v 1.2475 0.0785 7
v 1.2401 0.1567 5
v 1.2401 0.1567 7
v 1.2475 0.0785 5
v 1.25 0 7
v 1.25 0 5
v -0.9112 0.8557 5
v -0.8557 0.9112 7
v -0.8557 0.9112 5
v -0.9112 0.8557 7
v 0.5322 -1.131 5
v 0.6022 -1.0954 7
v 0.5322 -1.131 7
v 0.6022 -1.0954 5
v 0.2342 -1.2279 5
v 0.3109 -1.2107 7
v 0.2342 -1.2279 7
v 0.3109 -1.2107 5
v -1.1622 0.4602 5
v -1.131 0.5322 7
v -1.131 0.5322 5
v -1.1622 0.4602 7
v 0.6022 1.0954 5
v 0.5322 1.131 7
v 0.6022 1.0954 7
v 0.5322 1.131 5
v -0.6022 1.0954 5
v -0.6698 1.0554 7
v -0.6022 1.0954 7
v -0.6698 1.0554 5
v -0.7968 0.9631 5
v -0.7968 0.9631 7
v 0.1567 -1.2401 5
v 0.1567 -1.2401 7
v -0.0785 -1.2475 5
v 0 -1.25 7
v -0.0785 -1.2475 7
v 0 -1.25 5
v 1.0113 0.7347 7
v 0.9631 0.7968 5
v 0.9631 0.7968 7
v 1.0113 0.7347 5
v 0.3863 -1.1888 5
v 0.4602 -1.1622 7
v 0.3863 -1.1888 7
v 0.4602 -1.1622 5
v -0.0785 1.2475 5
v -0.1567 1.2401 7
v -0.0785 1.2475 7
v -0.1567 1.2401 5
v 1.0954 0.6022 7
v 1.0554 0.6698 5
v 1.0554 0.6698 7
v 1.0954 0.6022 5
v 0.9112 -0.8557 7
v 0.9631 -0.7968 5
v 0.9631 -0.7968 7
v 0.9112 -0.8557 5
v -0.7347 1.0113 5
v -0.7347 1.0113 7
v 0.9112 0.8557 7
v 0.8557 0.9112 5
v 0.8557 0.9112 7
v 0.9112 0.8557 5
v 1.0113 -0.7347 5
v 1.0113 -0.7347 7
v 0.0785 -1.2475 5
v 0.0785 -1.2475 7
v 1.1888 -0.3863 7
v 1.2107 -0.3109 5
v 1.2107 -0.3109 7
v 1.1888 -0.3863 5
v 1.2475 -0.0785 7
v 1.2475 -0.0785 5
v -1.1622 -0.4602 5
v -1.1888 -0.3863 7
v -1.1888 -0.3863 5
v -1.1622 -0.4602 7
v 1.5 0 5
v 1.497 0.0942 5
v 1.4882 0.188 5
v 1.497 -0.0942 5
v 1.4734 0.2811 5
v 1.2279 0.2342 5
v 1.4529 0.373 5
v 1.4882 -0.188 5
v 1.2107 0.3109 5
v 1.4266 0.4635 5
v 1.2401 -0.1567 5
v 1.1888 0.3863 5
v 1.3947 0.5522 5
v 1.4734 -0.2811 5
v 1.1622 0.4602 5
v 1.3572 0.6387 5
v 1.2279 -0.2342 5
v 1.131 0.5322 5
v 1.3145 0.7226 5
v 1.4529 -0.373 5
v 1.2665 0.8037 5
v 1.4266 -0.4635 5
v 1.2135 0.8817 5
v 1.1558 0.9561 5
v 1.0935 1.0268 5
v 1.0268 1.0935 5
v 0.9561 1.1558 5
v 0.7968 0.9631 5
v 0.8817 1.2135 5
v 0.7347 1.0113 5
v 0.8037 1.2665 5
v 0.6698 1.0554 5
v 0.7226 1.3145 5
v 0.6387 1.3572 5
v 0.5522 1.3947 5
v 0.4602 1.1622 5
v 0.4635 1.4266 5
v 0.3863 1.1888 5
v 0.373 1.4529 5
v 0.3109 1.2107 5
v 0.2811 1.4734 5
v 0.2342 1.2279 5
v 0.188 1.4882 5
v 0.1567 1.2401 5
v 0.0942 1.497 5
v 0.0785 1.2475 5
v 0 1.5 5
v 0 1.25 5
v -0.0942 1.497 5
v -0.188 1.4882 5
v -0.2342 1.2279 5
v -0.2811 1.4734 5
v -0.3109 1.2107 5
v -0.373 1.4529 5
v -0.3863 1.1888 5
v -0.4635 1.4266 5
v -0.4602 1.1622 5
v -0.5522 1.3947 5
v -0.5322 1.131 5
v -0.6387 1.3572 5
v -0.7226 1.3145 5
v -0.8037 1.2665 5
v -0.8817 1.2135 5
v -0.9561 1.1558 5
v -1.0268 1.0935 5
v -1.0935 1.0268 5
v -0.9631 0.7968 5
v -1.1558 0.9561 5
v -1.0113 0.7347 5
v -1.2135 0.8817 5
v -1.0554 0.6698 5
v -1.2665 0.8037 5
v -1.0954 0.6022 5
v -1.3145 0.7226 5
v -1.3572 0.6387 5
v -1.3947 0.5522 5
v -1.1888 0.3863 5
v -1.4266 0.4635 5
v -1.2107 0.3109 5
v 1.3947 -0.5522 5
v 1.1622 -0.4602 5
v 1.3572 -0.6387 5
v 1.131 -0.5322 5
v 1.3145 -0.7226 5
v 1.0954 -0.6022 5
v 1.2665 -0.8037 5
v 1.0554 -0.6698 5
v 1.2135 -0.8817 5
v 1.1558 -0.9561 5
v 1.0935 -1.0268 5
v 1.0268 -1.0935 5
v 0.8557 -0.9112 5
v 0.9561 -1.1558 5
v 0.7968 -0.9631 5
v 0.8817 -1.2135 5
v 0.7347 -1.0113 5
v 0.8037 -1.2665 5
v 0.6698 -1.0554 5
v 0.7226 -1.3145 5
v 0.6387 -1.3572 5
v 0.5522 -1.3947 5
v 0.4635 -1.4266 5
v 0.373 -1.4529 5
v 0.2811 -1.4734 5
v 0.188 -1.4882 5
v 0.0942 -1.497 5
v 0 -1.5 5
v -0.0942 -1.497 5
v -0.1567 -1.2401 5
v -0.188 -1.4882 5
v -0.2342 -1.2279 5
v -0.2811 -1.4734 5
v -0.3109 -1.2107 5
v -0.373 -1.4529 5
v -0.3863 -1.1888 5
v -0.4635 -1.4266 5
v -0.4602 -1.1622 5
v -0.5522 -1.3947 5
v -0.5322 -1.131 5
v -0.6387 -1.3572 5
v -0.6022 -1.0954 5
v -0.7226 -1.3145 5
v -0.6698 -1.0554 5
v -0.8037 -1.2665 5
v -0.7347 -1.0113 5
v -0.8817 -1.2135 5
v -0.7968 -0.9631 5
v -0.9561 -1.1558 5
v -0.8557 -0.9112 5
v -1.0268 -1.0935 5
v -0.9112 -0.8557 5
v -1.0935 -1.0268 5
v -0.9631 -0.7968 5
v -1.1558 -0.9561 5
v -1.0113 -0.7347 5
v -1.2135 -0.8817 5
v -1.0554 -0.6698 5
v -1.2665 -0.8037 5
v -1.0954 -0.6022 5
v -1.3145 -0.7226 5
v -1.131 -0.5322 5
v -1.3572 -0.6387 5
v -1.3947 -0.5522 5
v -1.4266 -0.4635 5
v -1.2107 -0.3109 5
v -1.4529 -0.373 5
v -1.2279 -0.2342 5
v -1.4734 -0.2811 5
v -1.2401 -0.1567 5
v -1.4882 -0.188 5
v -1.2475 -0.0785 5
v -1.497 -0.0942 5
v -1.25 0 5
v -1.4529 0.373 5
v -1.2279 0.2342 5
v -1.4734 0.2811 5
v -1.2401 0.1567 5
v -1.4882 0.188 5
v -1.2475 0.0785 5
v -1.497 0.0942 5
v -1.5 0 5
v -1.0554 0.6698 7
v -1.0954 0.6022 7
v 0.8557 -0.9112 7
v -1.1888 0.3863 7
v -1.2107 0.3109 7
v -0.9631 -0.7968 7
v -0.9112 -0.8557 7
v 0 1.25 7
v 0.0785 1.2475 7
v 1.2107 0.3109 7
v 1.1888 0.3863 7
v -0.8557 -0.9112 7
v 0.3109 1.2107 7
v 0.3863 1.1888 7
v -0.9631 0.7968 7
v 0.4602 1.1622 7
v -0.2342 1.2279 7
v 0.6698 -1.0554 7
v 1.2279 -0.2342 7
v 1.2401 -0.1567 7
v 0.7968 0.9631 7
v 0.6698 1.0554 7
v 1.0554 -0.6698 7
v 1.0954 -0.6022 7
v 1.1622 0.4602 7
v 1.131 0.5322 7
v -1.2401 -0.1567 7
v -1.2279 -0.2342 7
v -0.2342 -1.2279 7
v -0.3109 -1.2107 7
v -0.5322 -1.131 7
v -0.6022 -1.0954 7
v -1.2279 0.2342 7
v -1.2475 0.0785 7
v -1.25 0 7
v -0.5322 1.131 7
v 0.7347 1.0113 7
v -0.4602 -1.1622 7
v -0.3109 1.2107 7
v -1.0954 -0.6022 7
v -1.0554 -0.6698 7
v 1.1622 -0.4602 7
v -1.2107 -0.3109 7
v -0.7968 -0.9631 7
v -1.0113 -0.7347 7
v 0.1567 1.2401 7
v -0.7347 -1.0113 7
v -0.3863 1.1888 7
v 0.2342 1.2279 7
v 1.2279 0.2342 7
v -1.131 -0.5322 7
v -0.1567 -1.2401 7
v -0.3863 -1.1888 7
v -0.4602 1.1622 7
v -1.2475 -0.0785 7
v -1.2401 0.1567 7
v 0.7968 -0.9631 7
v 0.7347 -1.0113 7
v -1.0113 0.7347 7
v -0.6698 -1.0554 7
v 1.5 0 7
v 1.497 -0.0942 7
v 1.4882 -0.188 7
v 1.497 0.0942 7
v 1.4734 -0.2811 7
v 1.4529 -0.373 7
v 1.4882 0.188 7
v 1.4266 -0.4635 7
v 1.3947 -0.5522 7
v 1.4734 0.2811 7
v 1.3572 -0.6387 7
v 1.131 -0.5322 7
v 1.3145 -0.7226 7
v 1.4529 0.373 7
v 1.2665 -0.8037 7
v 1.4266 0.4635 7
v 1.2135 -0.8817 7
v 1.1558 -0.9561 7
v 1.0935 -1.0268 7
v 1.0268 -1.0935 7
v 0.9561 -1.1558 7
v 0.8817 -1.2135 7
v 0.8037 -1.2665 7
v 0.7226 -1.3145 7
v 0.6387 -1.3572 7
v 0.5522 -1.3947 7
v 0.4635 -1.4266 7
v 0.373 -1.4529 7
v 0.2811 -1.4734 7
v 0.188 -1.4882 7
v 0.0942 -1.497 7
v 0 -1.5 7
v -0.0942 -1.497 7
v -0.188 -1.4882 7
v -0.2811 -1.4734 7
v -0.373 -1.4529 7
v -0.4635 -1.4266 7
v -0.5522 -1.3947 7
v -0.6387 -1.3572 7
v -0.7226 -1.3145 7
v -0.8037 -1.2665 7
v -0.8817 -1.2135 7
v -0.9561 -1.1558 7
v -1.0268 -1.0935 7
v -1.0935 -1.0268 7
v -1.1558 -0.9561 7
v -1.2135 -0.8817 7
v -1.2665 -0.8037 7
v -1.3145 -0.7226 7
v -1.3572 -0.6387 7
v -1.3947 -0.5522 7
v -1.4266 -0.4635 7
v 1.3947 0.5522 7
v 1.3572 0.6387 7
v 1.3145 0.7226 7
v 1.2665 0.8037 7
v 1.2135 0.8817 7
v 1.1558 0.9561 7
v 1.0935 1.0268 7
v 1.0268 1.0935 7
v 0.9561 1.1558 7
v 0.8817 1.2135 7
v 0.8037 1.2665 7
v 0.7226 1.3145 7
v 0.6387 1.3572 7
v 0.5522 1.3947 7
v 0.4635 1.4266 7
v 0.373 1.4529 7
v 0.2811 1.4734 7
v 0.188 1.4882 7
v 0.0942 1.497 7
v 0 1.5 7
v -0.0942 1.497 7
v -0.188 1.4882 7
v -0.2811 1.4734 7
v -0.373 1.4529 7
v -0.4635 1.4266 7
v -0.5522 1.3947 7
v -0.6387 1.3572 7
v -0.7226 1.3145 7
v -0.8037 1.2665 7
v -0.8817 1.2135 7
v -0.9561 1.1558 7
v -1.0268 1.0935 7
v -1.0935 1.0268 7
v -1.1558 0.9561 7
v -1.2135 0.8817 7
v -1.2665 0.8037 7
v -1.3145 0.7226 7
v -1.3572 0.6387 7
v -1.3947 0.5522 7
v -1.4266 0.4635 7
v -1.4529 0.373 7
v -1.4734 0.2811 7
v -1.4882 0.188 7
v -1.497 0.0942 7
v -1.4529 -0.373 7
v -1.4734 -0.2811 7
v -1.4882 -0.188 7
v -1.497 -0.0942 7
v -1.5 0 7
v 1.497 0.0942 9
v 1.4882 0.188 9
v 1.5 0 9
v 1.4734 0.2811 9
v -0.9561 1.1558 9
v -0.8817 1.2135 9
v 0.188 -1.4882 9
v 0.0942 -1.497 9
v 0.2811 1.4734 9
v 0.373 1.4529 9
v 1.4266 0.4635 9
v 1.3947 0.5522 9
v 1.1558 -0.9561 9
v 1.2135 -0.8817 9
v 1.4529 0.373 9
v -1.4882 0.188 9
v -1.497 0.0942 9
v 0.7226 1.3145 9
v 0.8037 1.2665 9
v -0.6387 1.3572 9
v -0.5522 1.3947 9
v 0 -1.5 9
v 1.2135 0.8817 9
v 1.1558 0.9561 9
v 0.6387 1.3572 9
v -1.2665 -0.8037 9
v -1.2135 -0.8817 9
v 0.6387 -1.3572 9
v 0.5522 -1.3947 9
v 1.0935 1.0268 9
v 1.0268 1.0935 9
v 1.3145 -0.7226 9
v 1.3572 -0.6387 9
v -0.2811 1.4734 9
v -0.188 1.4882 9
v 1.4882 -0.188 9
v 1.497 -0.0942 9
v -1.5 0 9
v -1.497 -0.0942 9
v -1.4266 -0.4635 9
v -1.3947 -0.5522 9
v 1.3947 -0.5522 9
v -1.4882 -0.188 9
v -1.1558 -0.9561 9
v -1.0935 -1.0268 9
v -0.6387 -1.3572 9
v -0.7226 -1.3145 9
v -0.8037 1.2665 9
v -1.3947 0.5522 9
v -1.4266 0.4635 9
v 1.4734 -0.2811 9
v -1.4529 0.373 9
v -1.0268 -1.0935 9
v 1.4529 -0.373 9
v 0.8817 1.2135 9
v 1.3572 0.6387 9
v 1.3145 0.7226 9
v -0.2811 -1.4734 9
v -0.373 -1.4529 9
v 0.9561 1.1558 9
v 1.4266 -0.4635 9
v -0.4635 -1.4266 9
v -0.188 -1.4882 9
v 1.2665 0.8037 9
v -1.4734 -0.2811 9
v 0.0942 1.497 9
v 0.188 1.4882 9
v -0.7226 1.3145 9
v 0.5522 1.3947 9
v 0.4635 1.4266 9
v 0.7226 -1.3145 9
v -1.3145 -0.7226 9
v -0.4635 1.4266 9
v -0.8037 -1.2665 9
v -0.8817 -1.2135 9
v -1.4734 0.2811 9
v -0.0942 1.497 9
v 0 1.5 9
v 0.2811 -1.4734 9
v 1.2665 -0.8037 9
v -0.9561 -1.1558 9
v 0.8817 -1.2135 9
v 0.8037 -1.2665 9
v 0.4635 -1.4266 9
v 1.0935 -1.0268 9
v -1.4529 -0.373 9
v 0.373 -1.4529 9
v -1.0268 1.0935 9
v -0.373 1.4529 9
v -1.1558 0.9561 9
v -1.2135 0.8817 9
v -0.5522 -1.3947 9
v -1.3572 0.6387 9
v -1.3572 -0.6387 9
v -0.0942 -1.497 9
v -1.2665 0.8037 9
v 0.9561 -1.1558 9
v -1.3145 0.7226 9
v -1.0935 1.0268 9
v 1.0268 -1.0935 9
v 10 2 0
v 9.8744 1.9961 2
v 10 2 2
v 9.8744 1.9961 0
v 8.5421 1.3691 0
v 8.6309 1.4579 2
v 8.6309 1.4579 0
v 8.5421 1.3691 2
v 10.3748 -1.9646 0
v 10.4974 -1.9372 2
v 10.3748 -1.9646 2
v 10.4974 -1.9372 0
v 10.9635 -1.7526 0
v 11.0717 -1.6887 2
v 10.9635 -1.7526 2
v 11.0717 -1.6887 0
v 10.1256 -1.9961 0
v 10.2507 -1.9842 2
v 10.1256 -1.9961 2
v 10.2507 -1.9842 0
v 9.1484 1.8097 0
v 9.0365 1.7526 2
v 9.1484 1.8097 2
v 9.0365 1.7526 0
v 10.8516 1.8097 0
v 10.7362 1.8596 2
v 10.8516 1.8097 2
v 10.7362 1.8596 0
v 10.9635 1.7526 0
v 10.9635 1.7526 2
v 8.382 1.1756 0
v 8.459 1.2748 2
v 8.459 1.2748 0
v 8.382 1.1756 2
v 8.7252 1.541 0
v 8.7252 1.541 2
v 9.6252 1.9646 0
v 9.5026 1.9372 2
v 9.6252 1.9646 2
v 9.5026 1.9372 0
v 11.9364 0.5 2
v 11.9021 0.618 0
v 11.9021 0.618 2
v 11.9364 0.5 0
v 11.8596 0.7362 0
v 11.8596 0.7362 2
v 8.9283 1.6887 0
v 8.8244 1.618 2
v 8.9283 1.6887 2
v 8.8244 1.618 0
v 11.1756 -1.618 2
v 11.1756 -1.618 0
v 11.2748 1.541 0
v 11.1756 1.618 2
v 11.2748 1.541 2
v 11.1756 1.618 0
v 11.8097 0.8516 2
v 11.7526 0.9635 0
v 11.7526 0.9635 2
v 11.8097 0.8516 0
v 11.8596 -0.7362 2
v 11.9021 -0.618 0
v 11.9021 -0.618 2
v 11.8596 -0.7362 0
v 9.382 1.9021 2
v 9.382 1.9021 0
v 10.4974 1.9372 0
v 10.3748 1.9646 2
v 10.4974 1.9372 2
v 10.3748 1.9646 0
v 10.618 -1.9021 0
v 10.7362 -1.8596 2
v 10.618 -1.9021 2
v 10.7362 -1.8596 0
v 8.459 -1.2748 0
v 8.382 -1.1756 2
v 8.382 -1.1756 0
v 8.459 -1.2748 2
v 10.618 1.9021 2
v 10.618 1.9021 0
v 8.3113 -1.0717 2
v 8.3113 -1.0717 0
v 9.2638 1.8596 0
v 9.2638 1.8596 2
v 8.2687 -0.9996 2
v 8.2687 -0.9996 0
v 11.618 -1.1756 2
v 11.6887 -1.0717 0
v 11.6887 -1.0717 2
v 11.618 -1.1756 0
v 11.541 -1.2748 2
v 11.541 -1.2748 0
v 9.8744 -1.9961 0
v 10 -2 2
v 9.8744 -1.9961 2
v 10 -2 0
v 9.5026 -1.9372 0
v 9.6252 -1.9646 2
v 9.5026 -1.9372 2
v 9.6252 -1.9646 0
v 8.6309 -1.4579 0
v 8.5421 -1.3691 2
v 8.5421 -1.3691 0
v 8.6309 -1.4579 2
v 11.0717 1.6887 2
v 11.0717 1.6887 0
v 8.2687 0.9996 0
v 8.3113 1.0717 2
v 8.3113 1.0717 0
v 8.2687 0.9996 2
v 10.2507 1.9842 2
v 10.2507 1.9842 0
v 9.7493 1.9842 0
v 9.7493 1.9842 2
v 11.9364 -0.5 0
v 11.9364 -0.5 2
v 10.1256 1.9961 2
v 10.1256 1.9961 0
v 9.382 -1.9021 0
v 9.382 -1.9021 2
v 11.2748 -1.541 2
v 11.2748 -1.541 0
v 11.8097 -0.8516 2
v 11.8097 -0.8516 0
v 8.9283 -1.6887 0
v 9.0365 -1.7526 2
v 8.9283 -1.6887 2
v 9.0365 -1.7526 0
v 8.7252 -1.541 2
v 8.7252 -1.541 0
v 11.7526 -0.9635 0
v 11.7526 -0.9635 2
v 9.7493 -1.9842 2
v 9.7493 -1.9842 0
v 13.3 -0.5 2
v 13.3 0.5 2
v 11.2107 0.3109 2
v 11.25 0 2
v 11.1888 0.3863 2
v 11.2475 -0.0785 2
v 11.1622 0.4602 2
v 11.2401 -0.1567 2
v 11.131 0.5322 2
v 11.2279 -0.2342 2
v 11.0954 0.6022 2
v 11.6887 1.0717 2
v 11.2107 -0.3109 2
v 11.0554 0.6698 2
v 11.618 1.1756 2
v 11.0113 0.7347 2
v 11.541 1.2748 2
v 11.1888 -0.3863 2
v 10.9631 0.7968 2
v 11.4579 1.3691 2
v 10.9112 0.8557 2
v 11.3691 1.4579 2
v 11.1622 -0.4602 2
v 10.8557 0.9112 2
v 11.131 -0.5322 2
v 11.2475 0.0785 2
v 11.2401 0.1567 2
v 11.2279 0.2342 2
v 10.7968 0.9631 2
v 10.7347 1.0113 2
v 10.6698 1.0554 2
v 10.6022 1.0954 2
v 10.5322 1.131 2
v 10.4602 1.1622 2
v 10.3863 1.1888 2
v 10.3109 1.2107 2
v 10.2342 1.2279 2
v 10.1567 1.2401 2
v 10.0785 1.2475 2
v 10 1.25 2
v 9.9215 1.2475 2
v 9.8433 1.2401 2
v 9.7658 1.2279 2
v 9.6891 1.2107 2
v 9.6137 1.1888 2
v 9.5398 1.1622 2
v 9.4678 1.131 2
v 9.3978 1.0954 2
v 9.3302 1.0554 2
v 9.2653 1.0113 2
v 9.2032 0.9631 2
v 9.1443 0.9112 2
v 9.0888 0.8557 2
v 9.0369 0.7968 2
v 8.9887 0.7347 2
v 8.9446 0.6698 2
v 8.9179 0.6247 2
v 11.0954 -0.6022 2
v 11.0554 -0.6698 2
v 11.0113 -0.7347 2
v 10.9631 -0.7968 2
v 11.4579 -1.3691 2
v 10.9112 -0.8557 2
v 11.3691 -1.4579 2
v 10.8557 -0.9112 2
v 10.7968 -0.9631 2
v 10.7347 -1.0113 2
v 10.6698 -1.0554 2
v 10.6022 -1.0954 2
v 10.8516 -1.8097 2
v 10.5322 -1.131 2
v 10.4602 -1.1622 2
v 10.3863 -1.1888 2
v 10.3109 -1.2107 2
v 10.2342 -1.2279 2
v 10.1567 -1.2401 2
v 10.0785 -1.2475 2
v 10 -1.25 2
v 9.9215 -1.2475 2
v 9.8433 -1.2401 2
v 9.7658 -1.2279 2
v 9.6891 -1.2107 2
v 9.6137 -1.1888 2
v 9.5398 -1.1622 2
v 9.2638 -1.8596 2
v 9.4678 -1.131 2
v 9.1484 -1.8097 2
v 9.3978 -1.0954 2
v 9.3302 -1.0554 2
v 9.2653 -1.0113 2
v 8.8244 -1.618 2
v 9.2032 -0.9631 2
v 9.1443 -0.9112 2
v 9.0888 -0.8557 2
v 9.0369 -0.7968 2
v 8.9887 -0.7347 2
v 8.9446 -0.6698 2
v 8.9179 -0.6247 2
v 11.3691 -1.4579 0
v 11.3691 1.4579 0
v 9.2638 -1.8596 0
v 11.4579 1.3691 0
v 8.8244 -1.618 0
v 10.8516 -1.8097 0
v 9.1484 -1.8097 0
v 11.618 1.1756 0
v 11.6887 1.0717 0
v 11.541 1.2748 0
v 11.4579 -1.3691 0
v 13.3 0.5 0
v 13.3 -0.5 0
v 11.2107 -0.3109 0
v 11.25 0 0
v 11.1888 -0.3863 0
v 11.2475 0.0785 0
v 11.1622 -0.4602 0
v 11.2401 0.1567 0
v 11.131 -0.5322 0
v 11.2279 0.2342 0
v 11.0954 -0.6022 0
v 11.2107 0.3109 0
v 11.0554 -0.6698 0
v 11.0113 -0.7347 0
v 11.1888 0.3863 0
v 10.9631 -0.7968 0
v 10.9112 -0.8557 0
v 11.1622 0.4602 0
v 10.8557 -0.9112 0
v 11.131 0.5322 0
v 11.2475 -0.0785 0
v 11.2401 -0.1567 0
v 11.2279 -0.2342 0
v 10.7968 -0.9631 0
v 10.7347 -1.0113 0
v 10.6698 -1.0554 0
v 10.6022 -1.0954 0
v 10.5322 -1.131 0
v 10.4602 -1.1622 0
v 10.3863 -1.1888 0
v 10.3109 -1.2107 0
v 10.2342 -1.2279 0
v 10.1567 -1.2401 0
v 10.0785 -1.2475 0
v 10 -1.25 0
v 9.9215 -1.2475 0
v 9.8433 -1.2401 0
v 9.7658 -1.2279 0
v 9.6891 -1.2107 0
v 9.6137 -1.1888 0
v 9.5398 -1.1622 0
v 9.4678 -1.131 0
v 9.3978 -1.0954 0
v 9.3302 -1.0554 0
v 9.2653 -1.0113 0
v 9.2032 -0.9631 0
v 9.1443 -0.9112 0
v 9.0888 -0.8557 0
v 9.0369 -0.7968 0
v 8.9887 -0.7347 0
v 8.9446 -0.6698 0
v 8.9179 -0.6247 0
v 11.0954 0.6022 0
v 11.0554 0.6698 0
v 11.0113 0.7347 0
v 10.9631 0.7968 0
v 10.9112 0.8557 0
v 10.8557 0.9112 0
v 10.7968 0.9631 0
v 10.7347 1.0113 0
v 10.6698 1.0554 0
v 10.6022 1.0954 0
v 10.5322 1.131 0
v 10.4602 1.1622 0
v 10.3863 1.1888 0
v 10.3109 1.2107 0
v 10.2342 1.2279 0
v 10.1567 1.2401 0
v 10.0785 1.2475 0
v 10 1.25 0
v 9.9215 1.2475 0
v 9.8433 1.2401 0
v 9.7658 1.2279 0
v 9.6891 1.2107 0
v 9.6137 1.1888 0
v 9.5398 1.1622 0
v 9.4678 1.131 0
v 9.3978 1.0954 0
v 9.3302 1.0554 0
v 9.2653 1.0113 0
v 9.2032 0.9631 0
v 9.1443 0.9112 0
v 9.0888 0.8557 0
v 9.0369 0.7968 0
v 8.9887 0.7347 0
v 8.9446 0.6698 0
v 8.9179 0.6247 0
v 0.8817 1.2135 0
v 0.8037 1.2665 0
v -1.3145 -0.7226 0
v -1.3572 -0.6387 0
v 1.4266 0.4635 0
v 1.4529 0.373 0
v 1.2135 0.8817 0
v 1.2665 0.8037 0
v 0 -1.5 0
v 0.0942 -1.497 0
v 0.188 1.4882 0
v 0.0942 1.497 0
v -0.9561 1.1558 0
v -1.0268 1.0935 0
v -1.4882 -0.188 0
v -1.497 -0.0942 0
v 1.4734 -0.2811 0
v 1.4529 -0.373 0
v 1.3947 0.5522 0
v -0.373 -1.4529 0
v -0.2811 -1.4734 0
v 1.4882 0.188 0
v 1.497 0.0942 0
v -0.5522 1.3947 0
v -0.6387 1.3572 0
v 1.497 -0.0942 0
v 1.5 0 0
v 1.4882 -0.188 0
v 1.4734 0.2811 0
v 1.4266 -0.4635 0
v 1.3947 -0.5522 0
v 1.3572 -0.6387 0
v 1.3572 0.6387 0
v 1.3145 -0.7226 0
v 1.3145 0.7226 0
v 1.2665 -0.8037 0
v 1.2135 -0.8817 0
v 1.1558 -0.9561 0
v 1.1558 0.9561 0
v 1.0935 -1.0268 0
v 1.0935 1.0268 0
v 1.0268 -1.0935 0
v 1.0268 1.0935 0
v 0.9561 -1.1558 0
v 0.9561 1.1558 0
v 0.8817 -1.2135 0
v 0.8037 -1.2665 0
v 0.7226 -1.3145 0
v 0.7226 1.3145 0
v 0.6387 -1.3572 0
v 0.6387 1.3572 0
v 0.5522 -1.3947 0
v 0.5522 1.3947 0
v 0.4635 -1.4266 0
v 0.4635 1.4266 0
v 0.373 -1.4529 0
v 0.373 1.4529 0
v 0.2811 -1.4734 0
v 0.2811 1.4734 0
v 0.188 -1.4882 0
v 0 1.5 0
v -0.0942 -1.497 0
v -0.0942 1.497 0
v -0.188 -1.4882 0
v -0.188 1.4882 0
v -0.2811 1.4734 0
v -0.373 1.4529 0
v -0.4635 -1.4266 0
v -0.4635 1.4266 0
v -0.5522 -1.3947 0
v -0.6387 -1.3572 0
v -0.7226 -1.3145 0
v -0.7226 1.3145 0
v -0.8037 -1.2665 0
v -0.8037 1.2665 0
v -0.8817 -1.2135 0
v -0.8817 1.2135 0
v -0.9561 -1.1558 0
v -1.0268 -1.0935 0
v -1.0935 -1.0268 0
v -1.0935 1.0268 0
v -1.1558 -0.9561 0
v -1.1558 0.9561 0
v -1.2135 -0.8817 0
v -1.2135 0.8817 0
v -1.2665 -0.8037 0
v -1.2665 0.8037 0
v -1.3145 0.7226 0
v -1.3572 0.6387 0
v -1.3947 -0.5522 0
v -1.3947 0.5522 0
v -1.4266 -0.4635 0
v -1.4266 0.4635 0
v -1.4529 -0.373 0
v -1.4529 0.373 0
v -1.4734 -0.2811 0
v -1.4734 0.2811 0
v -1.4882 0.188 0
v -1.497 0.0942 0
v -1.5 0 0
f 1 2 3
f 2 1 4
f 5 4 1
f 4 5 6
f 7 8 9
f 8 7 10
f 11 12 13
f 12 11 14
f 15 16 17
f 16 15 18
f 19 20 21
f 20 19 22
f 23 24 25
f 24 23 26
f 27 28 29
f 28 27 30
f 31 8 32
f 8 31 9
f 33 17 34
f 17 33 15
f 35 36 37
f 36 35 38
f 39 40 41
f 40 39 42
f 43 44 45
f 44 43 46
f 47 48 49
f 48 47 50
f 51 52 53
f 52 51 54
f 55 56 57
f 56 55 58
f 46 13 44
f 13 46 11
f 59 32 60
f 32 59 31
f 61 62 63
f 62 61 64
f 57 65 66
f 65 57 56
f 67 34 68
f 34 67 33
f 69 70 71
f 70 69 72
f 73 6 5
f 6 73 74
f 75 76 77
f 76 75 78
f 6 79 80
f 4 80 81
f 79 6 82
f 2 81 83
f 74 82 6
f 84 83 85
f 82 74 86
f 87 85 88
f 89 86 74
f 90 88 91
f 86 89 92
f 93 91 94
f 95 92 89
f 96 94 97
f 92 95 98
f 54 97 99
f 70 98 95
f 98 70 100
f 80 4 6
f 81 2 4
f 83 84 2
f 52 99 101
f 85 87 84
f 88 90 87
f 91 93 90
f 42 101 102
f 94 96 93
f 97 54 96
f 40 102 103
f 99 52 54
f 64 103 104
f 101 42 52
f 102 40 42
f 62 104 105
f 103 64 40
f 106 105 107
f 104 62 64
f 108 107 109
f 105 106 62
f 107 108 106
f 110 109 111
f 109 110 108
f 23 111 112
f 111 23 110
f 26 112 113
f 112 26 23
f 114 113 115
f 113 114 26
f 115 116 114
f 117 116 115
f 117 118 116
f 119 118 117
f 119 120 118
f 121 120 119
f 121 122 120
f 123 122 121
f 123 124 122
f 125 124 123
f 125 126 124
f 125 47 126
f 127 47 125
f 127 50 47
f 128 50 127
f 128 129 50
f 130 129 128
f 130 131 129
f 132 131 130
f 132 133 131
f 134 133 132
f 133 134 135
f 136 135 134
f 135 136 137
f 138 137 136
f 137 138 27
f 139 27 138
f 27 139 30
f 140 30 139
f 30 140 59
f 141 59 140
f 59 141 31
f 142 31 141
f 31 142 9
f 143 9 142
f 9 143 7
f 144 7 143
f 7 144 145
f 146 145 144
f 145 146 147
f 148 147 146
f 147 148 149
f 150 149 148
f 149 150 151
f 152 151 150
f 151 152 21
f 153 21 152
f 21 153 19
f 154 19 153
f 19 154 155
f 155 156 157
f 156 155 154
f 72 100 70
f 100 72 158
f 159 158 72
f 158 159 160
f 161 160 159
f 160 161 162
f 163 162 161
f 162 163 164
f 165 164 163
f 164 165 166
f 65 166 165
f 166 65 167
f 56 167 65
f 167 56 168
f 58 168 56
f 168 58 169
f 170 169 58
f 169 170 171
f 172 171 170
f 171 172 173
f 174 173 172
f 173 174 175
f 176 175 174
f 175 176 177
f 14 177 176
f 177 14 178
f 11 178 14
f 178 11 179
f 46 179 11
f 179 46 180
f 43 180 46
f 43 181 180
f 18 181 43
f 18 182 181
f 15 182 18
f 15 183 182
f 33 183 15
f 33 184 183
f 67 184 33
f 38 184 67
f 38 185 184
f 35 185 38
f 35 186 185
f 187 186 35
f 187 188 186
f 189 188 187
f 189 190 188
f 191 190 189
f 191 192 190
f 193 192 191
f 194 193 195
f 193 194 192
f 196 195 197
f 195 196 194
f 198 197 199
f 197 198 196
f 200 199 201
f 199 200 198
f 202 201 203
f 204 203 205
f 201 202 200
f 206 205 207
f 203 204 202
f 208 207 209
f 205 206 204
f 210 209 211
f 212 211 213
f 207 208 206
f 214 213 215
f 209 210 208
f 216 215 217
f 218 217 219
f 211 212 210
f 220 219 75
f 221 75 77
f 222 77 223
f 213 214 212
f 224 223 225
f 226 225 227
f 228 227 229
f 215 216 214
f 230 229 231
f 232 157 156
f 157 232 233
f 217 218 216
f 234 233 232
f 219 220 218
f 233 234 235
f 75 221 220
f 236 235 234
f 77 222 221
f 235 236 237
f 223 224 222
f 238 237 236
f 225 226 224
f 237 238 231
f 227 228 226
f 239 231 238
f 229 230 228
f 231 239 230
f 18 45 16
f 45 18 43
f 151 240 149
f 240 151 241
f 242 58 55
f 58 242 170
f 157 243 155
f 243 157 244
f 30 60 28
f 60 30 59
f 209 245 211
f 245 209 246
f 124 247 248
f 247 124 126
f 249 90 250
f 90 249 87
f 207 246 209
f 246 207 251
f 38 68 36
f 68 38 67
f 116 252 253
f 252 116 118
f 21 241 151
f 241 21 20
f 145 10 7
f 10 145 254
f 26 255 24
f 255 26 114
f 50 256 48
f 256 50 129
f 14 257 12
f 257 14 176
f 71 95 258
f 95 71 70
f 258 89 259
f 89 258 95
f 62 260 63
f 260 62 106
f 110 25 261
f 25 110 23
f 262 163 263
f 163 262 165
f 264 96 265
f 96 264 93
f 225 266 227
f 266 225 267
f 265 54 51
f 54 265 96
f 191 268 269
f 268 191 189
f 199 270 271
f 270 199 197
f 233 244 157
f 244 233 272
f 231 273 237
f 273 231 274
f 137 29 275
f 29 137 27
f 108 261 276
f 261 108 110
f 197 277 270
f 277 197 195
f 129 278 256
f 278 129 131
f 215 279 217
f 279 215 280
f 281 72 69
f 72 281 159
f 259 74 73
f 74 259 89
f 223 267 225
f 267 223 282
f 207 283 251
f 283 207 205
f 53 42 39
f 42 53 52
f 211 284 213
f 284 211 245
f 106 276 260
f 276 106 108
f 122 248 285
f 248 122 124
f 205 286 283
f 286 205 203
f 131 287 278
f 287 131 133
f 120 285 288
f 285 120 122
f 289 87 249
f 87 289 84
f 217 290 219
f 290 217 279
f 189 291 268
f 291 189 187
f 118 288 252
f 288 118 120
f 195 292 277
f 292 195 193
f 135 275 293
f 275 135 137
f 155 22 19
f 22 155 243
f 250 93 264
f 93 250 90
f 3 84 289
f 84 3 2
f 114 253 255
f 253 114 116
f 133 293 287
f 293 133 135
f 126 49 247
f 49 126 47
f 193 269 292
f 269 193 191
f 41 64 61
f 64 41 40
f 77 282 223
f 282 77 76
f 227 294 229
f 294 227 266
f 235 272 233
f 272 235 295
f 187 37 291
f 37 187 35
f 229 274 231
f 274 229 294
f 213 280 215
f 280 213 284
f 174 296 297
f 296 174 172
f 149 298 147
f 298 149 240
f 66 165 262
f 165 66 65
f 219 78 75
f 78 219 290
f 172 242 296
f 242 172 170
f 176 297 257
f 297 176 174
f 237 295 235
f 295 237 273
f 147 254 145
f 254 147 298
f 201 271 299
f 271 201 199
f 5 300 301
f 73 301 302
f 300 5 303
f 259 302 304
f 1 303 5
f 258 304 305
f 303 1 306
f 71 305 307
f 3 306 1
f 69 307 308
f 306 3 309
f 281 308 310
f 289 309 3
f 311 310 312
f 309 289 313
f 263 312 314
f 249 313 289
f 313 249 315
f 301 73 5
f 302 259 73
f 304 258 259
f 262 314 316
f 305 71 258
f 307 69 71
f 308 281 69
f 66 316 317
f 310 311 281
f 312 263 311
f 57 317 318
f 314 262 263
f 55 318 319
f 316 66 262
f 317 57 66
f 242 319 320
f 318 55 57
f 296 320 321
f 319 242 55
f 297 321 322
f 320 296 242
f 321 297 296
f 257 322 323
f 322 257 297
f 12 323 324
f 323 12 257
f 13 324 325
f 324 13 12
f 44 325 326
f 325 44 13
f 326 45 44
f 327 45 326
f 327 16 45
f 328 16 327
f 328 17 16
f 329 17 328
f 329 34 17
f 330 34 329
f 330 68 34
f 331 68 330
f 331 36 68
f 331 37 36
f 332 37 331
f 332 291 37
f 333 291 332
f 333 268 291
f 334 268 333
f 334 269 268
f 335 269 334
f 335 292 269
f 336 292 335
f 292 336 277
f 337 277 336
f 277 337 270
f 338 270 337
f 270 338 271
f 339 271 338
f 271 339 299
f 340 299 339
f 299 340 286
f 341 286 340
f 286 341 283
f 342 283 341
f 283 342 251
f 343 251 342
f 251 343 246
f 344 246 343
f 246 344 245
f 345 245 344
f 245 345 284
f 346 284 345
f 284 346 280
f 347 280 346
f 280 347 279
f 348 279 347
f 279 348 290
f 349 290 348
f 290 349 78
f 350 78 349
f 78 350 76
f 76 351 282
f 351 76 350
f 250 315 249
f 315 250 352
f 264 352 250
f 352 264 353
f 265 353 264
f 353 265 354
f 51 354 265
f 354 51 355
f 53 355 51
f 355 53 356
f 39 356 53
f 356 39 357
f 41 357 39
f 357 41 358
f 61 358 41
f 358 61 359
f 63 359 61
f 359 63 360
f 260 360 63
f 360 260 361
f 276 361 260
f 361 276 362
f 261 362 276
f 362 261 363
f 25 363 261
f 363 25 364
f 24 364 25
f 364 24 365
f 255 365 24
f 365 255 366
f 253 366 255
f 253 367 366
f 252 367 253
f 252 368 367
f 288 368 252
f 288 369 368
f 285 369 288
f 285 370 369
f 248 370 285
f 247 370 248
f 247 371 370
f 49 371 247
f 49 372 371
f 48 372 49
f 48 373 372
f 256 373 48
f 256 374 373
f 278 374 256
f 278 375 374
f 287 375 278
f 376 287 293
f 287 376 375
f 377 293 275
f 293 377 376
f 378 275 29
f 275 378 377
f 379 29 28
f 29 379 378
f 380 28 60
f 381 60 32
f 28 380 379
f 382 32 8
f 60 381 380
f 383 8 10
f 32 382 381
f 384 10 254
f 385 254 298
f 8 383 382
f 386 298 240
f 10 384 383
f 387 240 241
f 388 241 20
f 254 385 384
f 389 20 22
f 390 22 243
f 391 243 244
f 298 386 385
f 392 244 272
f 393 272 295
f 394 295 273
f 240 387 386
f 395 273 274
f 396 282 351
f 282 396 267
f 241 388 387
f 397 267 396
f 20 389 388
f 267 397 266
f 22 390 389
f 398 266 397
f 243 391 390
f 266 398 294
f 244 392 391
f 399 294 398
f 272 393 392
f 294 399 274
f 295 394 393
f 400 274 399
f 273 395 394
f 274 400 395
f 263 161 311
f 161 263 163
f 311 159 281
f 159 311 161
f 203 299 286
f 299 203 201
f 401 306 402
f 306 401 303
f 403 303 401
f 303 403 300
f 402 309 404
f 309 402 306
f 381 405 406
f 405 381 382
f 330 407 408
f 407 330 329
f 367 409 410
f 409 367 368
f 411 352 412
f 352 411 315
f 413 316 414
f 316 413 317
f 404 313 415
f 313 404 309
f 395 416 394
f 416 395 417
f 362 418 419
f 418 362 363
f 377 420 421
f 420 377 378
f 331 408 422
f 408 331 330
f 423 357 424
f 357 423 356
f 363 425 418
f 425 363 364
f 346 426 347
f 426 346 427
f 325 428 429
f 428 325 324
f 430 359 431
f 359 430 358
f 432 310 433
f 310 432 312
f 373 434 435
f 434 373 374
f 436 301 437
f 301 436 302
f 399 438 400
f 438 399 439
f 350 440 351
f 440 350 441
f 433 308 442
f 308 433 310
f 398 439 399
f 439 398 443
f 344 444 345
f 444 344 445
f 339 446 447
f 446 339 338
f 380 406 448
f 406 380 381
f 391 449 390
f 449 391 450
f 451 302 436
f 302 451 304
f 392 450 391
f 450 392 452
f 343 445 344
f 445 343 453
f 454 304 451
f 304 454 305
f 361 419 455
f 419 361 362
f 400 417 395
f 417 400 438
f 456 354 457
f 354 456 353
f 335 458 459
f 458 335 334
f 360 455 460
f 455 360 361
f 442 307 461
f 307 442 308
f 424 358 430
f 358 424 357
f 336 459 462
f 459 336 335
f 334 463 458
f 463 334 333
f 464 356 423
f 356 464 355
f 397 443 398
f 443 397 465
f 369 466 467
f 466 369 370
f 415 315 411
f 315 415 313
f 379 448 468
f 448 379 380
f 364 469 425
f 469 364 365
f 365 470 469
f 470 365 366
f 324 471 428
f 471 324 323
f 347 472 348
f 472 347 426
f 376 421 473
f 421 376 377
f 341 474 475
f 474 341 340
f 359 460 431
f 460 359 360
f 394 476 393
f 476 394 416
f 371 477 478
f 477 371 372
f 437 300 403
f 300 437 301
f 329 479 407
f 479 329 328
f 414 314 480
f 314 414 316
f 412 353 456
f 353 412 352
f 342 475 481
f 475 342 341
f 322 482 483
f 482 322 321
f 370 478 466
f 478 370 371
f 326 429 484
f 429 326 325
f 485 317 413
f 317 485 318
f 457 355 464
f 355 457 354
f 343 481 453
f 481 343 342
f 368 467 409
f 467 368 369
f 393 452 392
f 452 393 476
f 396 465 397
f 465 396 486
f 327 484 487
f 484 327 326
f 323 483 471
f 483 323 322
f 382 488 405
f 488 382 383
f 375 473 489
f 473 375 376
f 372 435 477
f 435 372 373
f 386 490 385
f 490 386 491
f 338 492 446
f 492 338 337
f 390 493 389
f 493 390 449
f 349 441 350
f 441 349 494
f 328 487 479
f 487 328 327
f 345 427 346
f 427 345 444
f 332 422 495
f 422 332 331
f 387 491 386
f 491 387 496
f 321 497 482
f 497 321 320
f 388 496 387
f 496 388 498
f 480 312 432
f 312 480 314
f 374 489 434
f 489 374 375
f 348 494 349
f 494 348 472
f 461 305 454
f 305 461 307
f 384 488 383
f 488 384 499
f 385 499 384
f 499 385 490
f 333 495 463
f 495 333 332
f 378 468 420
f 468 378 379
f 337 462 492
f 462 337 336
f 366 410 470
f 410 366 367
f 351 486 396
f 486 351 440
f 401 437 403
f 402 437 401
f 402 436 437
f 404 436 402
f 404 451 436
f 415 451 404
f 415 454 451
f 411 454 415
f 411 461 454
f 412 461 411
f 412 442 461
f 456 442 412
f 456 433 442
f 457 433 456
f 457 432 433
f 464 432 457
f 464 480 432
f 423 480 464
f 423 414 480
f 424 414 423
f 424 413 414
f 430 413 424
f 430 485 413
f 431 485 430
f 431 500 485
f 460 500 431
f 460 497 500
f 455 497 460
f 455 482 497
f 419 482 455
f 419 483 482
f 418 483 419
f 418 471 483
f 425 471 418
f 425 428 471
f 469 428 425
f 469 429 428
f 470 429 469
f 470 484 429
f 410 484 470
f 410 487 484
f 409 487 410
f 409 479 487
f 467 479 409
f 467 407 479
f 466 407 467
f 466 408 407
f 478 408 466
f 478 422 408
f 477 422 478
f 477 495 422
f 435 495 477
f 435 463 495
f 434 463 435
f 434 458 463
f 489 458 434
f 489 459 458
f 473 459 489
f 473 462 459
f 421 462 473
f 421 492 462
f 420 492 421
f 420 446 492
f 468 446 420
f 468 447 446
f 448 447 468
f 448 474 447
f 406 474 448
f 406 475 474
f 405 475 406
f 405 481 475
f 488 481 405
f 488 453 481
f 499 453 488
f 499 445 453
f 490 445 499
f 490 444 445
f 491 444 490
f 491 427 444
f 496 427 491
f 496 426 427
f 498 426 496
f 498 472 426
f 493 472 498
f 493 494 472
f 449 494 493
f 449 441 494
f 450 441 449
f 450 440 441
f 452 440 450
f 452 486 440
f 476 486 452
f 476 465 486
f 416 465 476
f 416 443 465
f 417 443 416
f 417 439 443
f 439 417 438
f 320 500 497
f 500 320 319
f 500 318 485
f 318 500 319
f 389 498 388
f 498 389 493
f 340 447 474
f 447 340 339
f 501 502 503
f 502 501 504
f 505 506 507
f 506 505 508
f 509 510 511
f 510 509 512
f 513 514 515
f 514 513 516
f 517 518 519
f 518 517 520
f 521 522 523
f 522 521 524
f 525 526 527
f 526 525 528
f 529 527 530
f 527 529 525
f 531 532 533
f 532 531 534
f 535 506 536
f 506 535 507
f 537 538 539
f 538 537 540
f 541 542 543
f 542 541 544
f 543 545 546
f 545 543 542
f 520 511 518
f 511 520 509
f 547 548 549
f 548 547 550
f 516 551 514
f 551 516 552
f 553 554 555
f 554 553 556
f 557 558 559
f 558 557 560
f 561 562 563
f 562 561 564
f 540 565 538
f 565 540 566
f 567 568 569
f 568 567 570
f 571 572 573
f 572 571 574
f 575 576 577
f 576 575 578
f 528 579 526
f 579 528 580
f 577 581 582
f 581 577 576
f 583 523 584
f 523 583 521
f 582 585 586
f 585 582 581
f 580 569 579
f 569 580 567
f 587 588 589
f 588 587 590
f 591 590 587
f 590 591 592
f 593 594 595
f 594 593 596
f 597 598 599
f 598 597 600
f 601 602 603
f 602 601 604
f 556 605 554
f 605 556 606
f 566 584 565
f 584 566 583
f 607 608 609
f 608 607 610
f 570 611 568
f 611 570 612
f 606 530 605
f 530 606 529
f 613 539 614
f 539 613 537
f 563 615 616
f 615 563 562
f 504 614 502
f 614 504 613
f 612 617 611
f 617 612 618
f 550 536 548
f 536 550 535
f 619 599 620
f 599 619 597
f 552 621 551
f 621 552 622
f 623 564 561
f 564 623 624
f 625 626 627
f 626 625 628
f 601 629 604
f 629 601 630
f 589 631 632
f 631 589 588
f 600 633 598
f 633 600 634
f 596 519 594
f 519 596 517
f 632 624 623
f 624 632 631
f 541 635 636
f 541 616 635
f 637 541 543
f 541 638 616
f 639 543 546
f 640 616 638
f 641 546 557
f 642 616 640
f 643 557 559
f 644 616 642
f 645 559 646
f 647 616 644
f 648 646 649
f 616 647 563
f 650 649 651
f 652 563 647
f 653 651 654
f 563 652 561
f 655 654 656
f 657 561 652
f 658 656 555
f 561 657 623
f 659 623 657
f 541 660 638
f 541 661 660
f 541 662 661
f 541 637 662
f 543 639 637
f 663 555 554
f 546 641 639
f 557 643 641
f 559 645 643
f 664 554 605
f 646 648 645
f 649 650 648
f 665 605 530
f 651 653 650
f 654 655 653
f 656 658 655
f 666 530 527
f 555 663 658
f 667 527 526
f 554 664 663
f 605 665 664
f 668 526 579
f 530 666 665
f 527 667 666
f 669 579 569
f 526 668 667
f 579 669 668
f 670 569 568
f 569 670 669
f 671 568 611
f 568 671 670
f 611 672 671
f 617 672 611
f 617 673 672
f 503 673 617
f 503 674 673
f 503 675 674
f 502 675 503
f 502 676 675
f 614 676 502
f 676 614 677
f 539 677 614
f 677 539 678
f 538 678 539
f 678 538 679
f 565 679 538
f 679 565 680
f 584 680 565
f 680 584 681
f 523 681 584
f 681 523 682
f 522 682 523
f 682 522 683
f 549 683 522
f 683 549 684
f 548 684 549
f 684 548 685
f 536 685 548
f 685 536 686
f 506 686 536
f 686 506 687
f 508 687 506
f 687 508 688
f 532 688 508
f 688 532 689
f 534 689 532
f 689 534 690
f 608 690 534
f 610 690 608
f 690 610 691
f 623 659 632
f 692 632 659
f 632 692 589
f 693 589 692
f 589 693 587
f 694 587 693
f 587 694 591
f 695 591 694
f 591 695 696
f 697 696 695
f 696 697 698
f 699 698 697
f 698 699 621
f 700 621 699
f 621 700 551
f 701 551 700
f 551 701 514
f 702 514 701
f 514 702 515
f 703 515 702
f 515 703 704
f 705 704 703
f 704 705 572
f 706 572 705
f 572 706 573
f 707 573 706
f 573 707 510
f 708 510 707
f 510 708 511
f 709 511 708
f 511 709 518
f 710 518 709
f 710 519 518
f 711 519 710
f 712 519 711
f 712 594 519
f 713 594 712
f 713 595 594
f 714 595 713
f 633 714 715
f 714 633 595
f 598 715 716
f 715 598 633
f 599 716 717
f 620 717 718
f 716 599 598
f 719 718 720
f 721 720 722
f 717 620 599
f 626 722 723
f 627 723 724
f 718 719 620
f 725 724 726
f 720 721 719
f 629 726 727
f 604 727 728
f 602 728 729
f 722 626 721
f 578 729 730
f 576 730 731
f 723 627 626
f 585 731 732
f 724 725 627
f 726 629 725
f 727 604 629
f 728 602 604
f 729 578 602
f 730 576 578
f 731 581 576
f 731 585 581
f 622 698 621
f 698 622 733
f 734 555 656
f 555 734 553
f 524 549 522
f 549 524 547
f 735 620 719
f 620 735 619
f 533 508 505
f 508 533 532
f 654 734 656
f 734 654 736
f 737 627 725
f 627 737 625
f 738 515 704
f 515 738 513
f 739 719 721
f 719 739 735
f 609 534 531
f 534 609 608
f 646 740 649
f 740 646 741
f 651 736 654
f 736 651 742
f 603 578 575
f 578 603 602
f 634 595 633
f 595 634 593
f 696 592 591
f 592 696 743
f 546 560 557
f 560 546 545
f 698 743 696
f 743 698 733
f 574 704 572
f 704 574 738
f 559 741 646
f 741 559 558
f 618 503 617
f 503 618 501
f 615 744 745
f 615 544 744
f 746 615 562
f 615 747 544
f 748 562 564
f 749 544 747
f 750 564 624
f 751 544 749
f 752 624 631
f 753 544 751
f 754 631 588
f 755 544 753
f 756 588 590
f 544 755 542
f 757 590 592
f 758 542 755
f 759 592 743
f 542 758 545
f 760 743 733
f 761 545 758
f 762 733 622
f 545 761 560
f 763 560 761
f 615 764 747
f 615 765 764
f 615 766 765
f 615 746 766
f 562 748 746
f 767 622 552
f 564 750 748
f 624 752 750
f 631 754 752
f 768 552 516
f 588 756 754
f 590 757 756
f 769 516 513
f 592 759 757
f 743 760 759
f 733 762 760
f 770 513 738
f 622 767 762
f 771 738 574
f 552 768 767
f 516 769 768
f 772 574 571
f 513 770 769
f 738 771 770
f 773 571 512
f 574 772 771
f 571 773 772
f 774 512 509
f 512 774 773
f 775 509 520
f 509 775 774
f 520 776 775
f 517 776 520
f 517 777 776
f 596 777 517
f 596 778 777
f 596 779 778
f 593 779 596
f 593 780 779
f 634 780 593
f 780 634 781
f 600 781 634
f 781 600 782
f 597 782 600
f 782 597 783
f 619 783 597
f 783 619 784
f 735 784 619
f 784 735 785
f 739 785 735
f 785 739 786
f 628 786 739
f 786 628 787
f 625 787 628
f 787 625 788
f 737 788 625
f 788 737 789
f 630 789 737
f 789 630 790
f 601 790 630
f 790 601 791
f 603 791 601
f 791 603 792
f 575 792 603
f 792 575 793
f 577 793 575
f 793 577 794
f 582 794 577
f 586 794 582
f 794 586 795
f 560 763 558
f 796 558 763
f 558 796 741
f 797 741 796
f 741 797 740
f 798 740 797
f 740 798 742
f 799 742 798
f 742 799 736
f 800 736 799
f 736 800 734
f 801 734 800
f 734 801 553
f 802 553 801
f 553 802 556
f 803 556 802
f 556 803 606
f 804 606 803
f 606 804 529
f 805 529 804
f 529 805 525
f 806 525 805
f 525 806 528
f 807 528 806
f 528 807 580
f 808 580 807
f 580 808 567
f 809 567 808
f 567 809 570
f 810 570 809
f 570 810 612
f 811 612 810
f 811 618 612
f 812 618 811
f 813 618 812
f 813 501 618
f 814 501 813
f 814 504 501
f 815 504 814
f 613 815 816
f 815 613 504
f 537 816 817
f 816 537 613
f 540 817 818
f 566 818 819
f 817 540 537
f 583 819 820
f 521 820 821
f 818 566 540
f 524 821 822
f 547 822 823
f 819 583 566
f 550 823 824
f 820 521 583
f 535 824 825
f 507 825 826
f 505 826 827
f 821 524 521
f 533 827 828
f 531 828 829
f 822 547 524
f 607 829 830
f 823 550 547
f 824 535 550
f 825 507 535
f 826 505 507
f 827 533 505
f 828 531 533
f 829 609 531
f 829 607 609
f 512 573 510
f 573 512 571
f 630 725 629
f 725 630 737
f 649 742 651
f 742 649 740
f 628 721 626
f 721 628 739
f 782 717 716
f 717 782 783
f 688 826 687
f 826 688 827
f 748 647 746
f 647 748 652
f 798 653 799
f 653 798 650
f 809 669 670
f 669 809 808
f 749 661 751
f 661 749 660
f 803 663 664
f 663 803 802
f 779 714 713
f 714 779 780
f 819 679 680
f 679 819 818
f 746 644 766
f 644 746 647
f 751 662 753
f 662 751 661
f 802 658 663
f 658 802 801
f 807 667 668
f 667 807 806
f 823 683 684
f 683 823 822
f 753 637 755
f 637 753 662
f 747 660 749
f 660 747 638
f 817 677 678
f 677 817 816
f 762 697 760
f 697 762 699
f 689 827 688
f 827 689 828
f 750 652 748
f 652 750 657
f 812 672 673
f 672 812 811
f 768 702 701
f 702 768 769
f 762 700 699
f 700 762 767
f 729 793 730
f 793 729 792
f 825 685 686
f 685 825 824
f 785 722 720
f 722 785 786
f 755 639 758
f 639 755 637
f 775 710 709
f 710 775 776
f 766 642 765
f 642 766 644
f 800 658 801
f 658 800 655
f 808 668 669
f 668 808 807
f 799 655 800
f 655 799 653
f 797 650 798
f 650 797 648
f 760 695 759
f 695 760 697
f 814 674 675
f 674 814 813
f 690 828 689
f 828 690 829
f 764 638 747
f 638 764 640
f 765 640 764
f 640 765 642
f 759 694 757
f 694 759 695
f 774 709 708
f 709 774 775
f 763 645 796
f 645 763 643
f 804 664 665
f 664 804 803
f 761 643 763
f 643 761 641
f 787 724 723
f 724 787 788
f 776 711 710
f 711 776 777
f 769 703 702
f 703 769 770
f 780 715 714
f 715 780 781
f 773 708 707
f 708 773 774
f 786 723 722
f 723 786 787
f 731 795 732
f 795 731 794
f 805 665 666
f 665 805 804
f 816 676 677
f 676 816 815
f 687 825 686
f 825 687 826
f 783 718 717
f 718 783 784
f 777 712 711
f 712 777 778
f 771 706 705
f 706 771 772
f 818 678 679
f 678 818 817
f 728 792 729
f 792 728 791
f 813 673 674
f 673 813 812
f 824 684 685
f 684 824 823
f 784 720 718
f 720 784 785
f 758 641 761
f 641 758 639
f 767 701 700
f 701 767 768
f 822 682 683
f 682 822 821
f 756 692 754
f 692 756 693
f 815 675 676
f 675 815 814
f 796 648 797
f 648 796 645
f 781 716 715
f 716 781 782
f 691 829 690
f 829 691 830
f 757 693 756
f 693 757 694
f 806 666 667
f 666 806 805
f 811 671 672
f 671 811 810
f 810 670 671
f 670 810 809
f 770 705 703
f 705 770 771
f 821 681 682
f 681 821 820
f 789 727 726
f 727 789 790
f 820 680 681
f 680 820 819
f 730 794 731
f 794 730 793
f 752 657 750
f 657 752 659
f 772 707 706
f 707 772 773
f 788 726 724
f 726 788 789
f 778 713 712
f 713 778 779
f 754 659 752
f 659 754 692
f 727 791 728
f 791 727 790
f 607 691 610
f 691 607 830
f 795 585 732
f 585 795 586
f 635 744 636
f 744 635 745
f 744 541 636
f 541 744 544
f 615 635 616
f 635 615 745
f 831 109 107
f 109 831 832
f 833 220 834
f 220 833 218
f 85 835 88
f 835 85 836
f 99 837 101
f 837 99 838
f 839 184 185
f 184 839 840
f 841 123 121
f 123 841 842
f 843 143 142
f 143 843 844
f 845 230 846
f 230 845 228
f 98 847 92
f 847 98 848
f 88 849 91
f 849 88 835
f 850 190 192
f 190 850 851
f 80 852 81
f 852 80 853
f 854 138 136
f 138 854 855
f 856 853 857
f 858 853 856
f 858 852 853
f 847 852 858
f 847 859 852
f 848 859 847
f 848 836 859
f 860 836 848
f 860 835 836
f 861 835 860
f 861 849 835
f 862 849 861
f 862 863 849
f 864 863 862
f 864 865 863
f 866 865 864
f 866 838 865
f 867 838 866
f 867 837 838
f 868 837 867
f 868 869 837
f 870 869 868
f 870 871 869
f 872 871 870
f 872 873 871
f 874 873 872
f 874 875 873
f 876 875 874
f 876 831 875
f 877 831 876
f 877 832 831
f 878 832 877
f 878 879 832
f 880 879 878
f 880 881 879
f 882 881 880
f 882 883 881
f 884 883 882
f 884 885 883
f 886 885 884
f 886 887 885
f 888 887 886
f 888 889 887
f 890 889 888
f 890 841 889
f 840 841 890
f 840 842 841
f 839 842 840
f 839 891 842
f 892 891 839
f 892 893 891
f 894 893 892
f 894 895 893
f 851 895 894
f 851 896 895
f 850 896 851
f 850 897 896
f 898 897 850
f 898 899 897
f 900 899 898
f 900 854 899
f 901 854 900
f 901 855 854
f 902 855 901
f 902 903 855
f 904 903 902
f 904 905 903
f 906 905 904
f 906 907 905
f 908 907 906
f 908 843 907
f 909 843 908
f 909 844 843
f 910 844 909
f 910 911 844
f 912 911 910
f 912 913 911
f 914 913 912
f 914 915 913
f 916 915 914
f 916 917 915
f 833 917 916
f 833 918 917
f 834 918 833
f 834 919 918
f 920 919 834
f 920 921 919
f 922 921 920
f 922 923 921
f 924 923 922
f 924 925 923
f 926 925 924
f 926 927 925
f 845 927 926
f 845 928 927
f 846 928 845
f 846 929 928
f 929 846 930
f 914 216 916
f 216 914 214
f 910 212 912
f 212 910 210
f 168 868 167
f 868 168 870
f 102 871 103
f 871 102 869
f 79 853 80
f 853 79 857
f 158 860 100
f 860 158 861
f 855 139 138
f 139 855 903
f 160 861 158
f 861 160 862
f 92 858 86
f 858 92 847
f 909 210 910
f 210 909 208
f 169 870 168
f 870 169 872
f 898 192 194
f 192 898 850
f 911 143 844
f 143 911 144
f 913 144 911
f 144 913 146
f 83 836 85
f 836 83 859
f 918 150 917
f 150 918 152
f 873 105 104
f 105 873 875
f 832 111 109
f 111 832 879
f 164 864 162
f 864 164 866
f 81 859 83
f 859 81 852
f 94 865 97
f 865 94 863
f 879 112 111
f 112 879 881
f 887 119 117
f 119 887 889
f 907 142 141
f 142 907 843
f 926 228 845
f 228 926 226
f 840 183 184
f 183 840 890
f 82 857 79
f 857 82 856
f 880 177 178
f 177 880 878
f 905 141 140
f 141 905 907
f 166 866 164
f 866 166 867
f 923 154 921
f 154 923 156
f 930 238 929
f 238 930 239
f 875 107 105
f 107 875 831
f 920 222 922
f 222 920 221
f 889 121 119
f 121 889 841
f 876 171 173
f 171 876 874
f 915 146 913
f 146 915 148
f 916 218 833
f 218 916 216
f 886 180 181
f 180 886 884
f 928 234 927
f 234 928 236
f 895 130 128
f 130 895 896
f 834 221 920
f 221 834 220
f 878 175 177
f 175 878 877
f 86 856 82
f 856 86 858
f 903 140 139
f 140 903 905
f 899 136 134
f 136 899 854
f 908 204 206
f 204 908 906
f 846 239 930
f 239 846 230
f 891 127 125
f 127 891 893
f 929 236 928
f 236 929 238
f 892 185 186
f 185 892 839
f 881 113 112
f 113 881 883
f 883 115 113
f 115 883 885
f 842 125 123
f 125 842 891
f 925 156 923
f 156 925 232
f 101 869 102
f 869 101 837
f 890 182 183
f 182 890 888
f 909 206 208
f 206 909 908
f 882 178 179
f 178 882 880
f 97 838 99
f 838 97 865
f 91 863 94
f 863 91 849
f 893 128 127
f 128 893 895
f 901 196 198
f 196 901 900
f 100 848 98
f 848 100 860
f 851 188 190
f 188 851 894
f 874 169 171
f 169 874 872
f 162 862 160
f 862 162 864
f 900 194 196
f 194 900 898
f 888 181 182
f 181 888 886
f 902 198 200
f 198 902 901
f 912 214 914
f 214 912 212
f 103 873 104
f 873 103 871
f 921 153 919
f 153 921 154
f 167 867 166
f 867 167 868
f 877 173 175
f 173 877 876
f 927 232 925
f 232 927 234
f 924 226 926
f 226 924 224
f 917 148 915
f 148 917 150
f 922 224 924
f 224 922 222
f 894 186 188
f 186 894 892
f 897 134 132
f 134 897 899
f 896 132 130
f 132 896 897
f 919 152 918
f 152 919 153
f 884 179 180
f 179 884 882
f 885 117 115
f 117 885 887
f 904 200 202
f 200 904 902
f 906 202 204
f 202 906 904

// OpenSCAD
// latchalike?
$fn=100;
diameter = 3;

d2 = diameter - 0.5;
length = 5;

cylinder(h = length, d = diameter);
translate([0, 0, length])
{
cylinder(h = 2, d = d2);
  translate([0, 0, 2])
  cylinder(h = 2, d = diameter);
}

translate([0,0,1]) {
translate([12.3,0,0])
cube([2, 1, 2], center = true);
translate([10, 0, 0])
difference() {
  cylinder(h = 2, d = diameter+1, center = true);
  cylinder(h = 10, d = d2, center = true);
  translate([-3, 0, 0])
  cylinder(h = 10, d = diameter*2, center=true, $fn=1);
}
}
